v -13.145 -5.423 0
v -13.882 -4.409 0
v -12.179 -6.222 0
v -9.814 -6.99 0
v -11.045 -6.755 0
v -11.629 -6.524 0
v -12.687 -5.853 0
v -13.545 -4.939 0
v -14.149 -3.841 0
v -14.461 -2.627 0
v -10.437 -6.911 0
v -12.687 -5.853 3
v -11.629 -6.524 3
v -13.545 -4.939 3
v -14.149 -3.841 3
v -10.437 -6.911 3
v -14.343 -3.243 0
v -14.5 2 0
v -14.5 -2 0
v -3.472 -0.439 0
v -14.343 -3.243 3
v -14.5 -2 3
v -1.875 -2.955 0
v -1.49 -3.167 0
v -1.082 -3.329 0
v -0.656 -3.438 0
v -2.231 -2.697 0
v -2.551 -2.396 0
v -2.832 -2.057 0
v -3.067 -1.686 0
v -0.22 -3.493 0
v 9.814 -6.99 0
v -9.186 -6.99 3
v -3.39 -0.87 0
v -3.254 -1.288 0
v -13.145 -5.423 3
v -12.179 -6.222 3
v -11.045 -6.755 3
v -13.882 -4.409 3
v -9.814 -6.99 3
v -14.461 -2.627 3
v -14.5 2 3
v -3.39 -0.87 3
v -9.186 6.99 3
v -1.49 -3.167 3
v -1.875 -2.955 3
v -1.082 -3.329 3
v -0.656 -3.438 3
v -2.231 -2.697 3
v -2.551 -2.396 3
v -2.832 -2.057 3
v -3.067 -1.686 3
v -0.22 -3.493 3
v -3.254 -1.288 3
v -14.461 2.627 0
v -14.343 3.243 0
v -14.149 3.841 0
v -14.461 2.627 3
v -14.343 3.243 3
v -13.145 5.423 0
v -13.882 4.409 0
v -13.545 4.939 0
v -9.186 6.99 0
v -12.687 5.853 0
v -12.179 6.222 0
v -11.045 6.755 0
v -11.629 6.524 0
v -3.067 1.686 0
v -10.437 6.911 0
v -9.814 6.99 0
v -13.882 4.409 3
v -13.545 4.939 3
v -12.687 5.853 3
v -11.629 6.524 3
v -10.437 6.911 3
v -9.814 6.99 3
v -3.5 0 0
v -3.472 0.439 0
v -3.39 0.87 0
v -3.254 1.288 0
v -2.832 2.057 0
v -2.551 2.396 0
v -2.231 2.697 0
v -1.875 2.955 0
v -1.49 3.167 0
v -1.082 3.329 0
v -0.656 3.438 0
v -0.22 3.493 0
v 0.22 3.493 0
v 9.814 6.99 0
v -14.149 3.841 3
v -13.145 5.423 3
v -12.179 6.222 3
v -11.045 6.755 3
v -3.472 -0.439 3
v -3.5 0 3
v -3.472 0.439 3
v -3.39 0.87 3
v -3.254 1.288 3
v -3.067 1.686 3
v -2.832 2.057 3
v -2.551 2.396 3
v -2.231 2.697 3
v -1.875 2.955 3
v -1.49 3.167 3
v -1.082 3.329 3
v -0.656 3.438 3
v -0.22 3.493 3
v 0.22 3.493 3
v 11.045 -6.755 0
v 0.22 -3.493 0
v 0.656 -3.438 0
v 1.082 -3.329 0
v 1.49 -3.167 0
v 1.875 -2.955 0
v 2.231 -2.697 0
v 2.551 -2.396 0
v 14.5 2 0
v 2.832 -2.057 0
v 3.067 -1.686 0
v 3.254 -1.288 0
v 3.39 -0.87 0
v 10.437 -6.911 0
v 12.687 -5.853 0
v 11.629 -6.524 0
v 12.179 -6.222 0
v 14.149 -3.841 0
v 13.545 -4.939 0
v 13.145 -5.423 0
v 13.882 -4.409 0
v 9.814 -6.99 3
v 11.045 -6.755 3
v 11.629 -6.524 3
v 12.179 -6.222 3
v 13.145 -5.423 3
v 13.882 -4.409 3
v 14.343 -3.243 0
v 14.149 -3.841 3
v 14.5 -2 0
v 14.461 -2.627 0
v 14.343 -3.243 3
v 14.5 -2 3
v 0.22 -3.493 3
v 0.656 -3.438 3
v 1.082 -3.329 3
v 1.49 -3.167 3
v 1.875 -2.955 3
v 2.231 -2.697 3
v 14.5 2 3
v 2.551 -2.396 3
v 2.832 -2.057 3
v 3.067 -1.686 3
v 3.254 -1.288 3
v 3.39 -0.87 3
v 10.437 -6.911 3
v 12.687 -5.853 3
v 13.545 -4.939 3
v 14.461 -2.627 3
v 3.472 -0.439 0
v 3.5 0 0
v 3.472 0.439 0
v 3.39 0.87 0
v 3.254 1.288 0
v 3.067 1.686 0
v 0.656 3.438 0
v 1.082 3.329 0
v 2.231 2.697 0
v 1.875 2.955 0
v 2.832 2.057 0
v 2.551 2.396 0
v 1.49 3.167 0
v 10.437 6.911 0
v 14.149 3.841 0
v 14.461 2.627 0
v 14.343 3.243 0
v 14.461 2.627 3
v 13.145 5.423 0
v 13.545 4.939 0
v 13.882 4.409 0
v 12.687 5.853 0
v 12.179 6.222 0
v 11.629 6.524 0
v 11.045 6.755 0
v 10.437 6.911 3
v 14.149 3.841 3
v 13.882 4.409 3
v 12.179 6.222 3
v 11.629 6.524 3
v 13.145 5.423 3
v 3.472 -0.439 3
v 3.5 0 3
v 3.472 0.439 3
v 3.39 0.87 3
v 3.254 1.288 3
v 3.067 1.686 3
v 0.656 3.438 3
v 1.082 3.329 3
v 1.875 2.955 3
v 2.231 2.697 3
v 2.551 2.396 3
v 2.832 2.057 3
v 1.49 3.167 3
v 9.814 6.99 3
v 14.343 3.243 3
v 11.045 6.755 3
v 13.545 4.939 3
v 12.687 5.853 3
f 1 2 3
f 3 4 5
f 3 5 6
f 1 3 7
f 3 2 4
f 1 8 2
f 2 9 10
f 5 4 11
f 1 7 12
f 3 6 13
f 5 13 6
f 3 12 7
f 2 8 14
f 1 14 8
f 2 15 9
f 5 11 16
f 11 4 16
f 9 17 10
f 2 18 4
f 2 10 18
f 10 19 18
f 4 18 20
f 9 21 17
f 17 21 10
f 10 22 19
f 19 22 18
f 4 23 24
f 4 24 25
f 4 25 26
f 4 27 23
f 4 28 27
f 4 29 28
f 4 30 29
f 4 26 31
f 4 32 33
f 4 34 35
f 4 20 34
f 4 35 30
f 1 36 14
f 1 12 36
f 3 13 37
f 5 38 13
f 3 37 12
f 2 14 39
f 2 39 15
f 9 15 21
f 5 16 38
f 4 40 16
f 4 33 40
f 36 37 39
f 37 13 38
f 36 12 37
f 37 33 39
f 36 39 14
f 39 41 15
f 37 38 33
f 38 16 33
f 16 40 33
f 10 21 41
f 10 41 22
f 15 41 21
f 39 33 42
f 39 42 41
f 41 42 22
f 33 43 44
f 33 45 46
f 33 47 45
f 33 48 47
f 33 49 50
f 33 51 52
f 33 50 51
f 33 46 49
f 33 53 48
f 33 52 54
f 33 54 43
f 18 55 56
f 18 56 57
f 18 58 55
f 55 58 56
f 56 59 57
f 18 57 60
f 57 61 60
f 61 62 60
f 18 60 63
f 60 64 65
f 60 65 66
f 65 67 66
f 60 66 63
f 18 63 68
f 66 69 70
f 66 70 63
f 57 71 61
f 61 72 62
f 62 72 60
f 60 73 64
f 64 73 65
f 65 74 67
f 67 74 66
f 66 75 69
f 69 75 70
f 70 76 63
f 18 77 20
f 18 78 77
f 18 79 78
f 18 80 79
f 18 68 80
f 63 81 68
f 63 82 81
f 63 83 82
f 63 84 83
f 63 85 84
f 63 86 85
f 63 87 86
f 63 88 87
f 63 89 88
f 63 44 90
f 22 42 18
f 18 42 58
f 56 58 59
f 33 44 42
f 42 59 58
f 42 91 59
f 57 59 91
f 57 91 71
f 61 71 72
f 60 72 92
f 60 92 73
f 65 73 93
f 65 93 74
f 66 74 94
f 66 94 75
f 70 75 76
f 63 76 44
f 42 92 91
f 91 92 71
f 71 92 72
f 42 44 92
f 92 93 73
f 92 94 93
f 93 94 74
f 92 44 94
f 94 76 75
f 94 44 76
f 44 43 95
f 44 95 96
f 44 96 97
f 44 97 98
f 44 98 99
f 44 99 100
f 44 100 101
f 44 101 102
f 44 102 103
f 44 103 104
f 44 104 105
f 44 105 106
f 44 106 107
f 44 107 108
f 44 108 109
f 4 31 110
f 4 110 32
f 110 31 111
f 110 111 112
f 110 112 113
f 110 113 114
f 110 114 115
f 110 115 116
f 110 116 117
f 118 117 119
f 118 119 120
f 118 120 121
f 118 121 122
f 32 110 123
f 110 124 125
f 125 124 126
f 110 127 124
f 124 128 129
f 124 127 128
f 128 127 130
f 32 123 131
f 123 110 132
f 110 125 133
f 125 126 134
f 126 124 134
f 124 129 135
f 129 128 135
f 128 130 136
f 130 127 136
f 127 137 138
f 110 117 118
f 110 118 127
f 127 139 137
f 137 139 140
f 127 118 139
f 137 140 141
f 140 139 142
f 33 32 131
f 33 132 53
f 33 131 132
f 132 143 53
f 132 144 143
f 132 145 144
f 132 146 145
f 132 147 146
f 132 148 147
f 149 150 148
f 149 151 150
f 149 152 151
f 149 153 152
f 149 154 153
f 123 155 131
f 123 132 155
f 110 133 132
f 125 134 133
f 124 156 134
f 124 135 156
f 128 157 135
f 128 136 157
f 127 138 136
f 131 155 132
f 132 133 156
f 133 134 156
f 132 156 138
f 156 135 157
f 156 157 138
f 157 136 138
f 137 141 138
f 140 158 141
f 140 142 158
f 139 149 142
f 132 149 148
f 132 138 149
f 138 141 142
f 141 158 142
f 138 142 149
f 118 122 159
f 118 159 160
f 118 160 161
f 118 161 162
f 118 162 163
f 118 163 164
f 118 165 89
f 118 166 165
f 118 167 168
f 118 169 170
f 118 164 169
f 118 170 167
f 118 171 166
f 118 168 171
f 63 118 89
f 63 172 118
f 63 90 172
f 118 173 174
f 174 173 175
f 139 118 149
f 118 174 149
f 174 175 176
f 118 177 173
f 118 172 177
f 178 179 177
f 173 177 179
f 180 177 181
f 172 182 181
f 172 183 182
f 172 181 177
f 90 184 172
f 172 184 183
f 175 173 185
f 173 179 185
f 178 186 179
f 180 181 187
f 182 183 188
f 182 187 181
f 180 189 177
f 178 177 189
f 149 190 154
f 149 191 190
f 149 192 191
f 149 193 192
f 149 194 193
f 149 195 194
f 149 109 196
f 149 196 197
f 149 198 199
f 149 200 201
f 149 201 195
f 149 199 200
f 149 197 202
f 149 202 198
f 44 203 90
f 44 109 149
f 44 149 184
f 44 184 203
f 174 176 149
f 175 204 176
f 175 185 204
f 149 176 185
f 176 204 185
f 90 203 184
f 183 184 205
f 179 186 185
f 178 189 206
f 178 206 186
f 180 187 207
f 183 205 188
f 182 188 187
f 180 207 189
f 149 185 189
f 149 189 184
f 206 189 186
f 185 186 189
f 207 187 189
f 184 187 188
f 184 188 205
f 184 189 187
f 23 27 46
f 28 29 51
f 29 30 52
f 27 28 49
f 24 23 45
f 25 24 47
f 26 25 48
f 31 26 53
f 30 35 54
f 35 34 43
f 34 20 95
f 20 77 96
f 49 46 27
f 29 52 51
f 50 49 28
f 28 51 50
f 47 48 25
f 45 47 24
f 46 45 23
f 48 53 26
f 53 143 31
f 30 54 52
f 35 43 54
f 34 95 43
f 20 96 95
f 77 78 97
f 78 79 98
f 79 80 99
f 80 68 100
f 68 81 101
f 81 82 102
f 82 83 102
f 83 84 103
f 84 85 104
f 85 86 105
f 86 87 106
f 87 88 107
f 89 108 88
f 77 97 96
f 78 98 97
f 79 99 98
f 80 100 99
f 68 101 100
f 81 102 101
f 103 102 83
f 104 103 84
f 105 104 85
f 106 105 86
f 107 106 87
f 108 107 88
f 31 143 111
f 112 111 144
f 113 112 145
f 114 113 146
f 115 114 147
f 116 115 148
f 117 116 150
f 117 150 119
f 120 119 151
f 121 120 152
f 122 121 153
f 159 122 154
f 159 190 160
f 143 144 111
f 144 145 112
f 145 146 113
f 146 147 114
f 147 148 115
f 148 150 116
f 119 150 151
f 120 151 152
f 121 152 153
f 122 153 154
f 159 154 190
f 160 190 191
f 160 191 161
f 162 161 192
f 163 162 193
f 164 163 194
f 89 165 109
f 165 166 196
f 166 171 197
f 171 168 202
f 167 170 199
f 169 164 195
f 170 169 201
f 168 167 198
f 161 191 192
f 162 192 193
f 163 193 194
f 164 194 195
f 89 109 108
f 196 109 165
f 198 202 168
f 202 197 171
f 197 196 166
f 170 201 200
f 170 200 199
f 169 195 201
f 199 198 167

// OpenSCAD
$fn = 50;

difference() {
	union() {
		hull() {
			translate(v = [-9.5, 2.0, 0]) {
				cylinder(h = 3, r = 5);
			}
			translate(v = [9.5, 2.0, 0]) {
				cylinder(h = 3, r = 5);
			}
			translate(v = [-9.5, -2.0, 0]) {
				cylinder(h = 3, r = 5);
			}
			translate(v = [9.5, -2.0, 0]) {
				cylinder(h = 3, r = 5);
			}
		}
	}
	union() {
		cylinder(h = 3, r = 3.5);
	}
}
